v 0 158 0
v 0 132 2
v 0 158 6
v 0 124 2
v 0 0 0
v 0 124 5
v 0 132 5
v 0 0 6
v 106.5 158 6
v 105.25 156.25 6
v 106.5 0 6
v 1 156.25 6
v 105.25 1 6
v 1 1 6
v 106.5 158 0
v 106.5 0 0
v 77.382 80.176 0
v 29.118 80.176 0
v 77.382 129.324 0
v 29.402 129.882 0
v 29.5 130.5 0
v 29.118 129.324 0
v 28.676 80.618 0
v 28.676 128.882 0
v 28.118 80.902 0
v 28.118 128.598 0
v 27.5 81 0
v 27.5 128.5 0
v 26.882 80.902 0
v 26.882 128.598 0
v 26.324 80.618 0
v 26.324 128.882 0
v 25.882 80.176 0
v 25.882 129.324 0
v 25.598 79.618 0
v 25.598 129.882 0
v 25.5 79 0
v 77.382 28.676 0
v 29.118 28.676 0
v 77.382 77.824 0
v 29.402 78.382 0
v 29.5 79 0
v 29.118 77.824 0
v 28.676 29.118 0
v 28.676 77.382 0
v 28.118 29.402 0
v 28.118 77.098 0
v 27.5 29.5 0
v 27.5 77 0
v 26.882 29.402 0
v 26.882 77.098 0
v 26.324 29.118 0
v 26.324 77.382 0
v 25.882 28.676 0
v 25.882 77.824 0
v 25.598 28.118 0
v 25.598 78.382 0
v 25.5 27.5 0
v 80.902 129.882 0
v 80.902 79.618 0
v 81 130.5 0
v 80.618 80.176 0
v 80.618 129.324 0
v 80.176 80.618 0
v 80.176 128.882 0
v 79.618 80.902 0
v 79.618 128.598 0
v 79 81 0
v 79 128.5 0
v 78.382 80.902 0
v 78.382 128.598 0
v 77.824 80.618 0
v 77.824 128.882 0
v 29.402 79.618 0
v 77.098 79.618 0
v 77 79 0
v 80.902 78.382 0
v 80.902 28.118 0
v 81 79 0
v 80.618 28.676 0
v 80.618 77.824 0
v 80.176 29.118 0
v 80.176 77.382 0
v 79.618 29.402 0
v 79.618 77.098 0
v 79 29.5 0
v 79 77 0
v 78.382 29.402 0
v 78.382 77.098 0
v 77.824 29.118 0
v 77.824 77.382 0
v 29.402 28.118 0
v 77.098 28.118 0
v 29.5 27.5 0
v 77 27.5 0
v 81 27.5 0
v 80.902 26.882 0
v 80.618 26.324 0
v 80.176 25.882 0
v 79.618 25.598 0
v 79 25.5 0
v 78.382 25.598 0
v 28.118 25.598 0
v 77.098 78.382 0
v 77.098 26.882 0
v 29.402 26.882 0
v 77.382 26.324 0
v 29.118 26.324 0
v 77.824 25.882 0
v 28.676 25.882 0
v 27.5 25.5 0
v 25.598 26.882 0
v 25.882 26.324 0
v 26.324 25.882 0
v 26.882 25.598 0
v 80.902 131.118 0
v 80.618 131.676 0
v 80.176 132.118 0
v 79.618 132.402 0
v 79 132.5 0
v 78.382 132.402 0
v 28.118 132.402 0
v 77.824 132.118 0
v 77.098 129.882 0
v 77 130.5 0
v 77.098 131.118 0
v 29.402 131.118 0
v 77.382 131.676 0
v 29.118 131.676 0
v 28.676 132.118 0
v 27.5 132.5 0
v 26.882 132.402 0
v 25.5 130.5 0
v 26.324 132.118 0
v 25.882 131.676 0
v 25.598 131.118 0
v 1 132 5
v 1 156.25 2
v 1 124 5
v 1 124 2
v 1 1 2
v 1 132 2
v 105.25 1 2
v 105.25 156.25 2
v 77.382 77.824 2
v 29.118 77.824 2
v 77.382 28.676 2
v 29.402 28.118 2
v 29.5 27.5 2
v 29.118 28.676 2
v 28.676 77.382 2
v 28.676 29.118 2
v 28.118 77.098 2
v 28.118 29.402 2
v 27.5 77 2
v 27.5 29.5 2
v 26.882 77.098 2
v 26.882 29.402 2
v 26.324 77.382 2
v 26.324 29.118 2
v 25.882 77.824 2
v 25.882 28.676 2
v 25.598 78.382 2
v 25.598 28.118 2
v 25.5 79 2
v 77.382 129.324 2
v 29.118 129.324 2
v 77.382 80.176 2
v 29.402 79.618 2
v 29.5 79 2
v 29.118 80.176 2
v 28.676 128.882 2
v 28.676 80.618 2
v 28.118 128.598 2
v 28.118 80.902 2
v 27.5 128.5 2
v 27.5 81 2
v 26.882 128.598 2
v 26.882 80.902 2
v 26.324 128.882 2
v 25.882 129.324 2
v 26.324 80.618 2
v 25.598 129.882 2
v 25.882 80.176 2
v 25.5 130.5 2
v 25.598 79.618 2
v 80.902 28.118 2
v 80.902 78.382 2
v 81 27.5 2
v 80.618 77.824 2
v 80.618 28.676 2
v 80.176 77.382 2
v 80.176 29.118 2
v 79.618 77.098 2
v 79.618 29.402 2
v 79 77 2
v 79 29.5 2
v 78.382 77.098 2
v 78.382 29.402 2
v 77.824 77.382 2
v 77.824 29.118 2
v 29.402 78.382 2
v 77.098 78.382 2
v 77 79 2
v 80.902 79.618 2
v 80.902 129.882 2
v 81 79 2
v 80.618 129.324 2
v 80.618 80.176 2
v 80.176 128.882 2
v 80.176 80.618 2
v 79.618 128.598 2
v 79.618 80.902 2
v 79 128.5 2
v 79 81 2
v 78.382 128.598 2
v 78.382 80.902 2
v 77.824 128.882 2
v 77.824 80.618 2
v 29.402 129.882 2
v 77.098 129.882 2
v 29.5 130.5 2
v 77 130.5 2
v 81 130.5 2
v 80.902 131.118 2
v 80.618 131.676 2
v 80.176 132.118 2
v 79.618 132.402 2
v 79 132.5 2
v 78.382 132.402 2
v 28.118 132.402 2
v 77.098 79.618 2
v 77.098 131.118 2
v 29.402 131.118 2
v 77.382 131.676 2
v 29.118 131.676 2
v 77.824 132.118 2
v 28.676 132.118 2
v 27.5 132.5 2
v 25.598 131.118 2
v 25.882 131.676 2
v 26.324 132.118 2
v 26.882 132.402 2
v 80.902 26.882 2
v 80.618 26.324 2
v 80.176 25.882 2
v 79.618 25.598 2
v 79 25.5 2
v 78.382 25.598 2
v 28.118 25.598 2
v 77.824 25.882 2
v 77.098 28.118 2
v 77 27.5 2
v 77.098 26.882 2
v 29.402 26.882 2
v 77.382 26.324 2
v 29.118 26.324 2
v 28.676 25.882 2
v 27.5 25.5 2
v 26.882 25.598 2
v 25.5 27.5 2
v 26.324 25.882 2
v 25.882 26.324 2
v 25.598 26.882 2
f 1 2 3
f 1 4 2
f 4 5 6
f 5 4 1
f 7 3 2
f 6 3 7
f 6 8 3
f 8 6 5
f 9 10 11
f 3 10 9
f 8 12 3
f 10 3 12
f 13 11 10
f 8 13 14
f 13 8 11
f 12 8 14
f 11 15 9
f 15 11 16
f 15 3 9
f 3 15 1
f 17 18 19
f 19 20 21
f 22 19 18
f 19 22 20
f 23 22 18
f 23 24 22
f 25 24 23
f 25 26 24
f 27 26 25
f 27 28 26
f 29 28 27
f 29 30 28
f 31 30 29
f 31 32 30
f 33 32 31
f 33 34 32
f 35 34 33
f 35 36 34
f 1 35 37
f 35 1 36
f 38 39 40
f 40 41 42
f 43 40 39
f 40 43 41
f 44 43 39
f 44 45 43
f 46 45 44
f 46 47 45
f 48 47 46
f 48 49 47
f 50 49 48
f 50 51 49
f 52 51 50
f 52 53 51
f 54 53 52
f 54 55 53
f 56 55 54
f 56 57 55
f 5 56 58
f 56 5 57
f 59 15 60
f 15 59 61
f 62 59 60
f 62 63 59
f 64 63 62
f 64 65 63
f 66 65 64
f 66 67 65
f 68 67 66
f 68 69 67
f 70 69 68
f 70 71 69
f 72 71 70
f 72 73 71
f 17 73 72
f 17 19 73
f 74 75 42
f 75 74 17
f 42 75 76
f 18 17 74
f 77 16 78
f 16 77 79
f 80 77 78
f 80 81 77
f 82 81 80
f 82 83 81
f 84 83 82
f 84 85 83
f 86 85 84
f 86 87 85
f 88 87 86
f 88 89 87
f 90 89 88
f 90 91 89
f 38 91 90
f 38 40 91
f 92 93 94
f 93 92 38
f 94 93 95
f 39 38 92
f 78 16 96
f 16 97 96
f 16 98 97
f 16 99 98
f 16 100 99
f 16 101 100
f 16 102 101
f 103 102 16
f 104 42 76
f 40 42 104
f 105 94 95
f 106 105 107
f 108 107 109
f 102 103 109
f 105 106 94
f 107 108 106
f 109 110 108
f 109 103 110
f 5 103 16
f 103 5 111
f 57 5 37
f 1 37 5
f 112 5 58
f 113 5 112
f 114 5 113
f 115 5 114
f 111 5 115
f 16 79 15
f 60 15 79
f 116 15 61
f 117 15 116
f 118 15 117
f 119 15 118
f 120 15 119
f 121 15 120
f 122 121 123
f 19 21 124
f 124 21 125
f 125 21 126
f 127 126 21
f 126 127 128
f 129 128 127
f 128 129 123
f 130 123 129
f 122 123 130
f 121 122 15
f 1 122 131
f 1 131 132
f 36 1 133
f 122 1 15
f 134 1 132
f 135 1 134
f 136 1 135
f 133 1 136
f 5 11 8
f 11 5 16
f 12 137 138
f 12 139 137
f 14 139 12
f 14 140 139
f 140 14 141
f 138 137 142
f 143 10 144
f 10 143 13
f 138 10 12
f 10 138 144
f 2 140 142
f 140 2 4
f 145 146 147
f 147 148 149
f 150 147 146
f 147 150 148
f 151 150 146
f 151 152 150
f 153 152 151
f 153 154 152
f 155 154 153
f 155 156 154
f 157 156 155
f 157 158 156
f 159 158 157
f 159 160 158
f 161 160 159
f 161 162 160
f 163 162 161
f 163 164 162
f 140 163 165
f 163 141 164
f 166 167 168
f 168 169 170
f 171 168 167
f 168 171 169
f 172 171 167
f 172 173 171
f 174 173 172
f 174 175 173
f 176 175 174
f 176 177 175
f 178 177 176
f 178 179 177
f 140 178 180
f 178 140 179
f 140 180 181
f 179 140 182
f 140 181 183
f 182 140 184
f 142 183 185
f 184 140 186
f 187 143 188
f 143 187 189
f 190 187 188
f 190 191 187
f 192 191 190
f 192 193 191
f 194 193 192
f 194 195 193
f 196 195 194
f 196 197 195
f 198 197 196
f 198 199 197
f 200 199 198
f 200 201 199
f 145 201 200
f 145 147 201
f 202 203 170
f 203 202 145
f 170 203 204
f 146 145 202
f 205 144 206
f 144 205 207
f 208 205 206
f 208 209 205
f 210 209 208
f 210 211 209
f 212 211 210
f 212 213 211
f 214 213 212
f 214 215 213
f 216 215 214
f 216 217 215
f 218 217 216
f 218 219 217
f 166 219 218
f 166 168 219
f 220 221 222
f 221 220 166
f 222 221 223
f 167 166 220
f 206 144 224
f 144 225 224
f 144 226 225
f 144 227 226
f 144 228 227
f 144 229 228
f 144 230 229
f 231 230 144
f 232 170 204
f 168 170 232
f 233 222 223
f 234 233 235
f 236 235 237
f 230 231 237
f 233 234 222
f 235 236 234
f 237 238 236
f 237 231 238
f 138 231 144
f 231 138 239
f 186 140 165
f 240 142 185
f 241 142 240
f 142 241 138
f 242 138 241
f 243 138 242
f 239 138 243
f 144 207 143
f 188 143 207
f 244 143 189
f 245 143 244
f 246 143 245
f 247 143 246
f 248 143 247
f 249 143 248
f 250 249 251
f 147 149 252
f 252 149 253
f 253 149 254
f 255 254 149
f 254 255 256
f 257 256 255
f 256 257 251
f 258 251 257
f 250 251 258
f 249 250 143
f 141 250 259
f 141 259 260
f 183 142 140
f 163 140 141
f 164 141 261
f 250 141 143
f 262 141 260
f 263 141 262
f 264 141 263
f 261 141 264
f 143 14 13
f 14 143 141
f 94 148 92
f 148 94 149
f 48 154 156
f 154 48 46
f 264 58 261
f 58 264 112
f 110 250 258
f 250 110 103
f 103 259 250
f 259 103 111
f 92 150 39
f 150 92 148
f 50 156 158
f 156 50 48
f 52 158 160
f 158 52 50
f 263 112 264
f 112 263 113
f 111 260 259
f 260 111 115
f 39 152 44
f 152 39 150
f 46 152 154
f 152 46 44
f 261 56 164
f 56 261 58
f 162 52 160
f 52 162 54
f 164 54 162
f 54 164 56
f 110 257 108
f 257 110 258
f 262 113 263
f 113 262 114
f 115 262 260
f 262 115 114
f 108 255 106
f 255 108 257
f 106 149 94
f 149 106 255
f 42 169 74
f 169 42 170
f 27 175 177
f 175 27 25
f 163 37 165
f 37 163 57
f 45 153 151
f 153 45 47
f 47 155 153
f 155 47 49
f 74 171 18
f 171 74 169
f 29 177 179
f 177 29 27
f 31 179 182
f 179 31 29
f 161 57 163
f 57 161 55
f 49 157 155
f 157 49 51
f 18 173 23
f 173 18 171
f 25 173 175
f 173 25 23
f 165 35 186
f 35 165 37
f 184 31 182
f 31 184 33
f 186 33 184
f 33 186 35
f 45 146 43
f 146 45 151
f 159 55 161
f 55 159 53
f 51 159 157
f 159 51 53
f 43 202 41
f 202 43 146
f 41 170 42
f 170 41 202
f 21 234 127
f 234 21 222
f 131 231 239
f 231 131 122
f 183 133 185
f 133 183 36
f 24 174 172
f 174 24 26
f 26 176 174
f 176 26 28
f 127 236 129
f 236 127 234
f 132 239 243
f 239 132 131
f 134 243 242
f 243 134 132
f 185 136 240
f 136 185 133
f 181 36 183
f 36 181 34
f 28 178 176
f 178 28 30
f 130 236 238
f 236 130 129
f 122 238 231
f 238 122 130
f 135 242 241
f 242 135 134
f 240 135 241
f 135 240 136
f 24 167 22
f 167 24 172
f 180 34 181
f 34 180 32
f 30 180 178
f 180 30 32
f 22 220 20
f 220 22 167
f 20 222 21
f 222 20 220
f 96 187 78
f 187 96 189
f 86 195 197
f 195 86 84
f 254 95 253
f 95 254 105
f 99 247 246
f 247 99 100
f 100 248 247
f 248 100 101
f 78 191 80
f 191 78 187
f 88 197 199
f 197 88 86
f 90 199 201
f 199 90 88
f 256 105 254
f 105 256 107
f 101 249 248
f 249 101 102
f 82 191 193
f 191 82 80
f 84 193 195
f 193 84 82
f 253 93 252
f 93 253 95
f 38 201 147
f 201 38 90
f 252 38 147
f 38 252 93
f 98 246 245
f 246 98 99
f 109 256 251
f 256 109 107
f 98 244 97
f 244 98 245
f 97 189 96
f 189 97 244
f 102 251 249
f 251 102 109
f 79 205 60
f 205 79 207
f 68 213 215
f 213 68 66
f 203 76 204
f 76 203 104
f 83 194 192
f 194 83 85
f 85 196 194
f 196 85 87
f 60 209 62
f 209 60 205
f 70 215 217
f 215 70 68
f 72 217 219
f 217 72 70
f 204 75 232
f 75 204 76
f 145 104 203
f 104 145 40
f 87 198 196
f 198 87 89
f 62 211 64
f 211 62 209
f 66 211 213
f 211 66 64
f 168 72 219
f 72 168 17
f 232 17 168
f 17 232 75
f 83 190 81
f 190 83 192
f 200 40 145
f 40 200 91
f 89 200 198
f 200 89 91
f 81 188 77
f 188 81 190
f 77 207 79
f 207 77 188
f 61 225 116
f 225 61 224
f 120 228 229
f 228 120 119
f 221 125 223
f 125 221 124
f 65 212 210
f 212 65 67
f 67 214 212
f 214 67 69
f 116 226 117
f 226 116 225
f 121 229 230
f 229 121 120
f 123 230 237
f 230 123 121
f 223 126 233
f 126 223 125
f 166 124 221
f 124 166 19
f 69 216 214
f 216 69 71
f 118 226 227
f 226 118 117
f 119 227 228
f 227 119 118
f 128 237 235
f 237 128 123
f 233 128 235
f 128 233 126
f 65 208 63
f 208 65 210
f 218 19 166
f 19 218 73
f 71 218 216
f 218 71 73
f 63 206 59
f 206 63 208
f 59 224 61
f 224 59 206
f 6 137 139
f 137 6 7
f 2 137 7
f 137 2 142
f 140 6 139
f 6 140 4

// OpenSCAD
$fn = 20;
wallHeight = 6;
postDiameter = 2;

difference()
{
    cube([106.5,158,wallHeight],false);
    
    //Carve out the cube
    translate([1,1,2]) cube([104.25,155.25,wallHeight],false);
    
    //Carve out a hole on bottom right
    translate([27.5,27.5,-2]) cylinder(wallHeight,postDiameter,postDiameter);
 
    //Carve out a hole on bottom middle
    translate([27.5,79,-2]) cylinder(wallHeight,postDiameter,postDiameter);
    
    //Carve out a hole on bottom left
    translate([27.5,130.5,-2]) cylinder(wallHeight,postDiameter,postDiameter);

    //Carve out a hole on top left
    translate([79,27.5,-2]) cylinder(wallHeight,postDiameter,postDiameter);
 
    translate([79,79,-2]) cylinder(wallHeight,postDiameter,postDiameter);

    translate([79,130.5,-2]) cylinder(wallHeight,postDiameter,postDiameter);

    //translate([-2,21,2]) cube([3,8,3],false);
    translate([-2,124,2]) cube([3,8,3],false);
}
